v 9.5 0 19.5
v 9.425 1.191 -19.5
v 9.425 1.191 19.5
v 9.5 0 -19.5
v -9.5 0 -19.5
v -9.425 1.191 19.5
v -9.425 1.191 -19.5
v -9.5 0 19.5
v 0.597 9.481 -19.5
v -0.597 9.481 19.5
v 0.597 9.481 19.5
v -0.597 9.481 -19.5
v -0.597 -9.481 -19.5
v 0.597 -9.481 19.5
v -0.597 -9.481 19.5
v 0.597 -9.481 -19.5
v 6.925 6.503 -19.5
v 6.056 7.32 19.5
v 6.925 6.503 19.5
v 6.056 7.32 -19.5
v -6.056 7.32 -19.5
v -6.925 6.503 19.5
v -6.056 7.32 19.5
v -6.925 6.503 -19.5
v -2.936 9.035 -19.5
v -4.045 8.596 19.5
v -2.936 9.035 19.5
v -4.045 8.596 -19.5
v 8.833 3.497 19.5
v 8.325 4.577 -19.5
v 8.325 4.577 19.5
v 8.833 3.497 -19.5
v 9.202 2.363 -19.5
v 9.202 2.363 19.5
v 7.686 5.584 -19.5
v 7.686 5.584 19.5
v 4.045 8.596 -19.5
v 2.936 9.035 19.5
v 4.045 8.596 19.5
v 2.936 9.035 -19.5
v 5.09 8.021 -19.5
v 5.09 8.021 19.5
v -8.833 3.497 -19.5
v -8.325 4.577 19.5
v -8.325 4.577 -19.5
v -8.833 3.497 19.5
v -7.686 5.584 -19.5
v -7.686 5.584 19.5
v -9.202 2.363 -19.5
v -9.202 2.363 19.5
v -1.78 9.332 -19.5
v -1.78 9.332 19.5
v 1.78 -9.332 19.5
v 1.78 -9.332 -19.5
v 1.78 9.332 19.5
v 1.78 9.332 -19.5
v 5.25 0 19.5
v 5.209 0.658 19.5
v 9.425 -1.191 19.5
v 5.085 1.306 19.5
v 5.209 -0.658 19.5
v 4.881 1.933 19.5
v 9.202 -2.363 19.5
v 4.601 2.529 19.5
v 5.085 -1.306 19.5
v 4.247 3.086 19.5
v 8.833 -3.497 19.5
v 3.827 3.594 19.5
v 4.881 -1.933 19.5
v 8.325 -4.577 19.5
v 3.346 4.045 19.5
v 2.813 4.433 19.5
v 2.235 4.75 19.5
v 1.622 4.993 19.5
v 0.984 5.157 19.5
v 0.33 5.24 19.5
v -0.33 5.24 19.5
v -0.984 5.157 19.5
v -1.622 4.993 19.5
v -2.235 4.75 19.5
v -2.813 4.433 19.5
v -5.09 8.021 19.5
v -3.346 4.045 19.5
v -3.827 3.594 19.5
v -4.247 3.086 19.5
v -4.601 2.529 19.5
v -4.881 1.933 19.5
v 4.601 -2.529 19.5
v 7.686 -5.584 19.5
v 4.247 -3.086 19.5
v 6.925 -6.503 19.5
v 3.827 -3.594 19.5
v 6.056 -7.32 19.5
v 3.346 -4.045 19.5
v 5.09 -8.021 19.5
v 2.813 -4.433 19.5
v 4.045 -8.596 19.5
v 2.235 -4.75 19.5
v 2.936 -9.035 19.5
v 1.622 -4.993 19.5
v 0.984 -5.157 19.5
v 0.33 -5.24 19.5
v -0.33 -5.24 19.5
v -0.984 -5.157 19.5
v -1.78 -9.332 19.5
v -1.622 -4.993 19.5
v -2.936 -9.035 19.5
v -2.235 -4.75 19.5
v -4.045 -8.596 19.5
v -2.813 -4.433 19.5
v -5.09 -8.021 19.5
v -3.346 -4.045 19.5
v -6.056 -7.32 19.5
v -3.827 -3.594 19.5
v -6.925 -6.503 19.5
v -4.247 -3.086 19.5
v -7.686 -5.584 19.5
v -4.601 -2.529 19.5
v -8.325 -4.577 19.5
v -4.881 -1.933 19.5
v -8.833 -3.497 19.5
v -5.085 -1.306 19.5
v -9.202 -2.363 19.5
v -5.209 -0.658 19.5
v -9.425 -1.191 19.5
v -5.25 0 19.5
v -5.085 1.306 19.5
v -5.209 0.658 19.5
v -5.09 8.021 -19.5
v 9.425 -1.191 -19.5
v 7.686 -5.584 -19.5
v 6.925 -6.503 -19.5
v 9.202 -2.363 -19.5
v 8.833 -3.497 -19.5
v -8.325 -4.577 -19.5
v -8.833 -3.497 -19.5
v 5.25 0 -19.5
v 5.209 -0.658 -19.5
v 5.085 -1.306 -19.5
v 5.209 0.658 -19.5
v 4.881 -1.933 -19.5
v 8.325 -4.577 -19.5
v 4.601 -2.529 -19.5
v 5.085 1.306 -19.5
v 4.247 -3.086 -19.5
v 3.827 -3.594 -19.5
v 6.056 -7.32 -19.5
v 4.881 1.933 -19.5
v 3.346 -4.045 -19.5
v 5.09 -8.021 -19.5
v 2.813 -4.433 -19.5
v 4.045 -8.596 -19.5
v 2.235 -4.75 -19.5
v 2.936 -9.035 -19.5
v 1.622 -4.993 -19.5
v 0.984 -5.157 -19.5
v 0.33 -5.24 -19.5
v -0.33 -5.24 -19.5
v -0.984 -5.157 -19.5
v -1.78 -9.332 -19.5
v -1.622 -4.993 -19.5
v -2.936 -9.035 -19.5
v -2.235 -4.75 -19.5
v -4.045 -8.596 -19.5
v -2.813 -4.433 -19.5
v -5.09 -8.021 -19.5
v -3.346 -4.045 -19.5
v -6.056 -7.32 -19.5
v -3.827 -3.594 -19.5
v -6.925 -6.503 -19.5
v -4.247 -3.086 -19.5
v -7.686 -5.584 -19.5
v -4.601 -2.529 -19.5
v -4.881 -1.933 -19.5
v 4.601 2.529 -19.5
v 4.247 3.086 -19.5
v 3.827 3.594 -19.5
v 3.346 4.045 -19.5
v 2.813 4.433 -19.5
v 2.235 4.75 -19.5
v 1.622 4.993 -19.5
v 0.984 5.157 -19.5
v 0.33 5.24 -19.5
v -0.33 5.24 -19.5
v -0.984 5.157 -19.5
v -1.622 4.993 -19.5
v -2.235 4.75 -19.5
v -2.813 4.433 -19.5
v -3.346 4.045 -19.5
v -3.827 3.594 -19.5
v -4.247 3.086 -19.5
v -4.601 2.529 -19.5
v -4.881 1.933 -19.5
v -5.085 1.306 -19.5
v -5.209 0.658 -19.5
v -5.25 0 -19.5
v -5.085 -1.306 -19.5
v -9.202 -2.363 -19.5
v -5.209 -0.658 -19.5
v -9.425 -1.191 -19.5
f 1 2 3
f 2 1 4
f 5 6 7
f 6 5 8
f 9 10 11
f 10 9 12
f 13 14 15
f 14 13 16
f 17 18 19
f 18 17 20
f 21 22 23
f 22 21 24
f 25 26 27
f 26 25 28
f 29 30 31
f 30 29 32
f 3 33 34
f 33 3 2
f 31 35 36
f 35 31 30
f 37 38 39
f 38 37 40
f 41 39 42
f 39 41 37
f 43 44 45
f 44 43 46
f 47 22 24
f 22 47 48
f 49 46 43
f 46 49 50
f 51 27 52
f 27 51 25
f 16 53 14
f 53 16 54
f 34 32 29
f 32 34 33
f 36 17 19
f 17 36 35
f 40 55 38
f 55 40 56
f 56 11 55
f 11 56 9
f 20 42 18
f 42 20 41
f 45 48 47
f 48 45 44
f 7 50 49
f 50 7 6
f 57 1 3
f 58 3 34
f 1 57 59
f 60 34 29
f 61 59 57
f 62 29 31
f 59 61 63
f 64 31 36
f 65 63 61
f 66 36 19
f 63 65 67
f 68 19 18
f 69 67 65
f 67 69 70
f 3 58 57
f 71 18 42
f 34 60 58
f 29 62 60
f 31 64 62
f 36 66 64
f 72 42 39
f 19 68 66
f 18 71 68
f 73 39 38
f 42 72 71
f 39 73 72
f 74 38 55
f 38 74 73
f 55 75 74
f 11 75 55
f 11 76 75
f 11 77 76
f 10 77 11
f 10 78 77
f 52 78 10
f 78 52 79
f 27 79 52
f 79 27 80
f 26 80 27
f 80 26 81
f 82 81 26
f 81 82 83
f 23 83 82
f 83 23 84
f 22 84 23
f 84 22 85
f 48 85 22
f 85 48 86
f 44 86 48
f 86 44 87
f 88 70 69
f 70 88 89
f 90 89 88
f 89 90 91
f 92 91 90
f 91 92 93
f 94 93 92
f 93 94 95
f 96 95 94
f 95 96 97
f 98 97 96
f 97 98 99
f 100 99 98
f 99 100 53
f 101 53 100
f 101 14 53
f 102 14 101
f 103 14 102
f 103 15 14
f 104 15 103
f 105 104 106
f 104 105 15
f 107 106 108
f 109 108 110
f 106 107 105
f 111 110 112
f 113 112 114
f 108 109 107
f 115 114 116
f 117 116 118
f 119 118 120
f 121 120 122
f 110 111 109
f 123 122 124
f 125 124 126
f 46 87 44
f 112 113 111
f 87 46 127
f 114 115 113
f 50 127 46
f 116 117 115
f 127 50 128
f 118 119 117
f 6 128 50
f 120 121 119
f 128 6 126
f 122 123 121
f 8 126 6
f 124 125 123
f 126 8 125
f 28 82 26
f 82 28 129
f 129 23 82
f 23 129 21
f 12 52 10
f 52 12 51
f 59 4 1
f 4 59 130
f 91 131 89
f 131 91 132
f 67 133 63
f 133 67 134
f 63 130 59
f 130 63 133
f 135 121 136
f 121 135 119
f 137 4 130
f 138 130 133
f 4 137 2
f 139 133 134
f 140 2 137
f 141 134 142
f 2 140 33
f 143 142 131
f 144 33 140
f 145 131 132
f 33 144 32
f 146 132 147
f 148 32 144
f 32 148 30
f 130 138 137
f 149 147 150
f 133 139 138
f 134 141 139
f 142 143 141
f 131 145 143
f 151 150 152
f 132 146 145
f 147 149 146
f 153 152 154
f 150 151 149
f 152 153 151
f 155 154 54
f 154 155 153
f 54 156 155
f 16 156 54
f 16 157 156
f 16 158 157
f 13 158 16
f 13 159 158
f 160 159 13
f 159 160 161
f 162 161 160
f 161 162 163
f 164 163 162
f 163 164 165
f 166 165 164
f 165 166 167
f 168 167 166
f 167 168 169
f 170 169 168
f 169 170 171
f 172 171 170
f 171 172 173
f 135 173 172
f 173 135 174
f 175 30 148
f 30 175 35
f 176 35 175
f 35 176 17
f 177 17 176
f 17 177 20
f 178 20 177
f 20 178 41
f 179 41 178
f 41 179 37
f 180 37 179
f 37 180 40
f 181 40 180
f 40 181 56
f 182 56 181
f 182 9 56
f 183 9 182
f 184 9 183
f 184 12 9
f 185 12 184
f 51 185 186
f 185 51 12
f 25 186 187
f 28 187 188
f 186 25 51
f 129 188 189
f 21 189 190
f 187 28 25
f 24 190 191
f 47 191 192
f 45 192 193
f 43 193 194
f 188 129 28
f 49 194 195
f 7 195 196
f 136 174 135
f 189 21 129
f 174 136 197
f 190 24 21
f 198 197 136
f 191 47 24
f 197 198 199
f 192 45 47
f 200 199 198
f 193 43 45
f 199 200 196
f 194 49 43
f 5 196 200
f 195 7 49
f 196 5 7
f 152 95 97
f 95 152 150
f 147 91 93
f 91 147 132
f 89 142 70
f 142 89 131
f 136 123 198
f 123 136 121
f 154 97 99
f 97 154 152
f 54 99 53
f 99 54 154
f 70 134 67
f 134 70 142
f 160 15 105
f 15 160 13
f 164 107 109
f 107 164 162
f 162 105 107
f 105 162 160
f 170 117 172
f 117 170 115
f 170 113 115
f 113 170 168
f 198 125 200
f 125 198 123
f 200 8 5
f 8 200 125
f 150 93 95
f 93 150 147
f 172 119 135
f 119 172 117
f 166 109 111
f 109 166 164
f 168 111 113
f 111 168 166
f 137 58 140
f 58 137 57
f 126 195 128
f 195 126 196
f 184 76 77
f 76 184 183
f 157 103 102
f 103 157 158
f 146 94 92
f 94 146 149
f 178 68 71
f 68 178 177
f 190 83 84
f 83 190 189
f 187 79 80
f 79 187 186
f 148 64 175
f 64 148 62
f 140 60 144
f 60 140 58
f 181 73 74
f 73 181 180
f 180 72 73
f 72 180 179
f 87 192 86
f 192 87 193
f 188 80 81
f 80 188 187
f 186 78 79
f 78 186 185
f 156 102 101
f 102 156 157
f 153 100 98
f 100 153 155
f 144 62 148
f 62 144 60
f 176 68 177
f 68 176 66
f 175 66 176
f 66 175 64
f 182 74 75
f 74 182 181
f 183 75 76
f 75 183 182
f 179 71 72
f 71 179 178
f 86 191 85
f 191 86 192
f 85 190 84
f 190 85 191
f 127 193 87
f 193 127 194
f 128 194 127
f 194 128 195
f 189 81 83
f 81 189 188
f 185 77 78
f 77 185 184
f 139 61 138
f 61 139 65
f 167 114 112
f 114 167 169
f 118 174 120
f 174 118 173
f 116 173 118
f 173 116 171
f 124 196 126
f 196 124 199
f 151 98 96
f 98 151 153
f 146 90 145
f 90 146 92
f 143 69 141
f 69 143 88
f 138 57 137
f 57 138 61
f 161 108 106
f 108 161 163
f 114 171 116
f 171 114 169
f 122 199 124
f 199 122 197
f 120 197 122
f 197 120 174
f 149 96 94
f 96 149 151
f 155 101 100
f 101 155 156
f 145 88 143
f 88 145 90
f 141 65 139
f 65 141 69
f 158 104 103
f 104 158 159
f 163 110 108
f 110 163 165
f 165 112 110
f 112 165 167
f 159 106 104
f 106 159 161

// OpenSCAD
$fn = 50;


difference() {
	union() {
		translate(v = [0, 0, -19.5000000000]) {
			cylinder(h = 39, r = 9.5000000000);
		}
	}
	union() {
		translate(v = [0, 0, -100.0000000000]) {
			cylinder(h = 200, r = 5.2500000000);
		}
	}
}
